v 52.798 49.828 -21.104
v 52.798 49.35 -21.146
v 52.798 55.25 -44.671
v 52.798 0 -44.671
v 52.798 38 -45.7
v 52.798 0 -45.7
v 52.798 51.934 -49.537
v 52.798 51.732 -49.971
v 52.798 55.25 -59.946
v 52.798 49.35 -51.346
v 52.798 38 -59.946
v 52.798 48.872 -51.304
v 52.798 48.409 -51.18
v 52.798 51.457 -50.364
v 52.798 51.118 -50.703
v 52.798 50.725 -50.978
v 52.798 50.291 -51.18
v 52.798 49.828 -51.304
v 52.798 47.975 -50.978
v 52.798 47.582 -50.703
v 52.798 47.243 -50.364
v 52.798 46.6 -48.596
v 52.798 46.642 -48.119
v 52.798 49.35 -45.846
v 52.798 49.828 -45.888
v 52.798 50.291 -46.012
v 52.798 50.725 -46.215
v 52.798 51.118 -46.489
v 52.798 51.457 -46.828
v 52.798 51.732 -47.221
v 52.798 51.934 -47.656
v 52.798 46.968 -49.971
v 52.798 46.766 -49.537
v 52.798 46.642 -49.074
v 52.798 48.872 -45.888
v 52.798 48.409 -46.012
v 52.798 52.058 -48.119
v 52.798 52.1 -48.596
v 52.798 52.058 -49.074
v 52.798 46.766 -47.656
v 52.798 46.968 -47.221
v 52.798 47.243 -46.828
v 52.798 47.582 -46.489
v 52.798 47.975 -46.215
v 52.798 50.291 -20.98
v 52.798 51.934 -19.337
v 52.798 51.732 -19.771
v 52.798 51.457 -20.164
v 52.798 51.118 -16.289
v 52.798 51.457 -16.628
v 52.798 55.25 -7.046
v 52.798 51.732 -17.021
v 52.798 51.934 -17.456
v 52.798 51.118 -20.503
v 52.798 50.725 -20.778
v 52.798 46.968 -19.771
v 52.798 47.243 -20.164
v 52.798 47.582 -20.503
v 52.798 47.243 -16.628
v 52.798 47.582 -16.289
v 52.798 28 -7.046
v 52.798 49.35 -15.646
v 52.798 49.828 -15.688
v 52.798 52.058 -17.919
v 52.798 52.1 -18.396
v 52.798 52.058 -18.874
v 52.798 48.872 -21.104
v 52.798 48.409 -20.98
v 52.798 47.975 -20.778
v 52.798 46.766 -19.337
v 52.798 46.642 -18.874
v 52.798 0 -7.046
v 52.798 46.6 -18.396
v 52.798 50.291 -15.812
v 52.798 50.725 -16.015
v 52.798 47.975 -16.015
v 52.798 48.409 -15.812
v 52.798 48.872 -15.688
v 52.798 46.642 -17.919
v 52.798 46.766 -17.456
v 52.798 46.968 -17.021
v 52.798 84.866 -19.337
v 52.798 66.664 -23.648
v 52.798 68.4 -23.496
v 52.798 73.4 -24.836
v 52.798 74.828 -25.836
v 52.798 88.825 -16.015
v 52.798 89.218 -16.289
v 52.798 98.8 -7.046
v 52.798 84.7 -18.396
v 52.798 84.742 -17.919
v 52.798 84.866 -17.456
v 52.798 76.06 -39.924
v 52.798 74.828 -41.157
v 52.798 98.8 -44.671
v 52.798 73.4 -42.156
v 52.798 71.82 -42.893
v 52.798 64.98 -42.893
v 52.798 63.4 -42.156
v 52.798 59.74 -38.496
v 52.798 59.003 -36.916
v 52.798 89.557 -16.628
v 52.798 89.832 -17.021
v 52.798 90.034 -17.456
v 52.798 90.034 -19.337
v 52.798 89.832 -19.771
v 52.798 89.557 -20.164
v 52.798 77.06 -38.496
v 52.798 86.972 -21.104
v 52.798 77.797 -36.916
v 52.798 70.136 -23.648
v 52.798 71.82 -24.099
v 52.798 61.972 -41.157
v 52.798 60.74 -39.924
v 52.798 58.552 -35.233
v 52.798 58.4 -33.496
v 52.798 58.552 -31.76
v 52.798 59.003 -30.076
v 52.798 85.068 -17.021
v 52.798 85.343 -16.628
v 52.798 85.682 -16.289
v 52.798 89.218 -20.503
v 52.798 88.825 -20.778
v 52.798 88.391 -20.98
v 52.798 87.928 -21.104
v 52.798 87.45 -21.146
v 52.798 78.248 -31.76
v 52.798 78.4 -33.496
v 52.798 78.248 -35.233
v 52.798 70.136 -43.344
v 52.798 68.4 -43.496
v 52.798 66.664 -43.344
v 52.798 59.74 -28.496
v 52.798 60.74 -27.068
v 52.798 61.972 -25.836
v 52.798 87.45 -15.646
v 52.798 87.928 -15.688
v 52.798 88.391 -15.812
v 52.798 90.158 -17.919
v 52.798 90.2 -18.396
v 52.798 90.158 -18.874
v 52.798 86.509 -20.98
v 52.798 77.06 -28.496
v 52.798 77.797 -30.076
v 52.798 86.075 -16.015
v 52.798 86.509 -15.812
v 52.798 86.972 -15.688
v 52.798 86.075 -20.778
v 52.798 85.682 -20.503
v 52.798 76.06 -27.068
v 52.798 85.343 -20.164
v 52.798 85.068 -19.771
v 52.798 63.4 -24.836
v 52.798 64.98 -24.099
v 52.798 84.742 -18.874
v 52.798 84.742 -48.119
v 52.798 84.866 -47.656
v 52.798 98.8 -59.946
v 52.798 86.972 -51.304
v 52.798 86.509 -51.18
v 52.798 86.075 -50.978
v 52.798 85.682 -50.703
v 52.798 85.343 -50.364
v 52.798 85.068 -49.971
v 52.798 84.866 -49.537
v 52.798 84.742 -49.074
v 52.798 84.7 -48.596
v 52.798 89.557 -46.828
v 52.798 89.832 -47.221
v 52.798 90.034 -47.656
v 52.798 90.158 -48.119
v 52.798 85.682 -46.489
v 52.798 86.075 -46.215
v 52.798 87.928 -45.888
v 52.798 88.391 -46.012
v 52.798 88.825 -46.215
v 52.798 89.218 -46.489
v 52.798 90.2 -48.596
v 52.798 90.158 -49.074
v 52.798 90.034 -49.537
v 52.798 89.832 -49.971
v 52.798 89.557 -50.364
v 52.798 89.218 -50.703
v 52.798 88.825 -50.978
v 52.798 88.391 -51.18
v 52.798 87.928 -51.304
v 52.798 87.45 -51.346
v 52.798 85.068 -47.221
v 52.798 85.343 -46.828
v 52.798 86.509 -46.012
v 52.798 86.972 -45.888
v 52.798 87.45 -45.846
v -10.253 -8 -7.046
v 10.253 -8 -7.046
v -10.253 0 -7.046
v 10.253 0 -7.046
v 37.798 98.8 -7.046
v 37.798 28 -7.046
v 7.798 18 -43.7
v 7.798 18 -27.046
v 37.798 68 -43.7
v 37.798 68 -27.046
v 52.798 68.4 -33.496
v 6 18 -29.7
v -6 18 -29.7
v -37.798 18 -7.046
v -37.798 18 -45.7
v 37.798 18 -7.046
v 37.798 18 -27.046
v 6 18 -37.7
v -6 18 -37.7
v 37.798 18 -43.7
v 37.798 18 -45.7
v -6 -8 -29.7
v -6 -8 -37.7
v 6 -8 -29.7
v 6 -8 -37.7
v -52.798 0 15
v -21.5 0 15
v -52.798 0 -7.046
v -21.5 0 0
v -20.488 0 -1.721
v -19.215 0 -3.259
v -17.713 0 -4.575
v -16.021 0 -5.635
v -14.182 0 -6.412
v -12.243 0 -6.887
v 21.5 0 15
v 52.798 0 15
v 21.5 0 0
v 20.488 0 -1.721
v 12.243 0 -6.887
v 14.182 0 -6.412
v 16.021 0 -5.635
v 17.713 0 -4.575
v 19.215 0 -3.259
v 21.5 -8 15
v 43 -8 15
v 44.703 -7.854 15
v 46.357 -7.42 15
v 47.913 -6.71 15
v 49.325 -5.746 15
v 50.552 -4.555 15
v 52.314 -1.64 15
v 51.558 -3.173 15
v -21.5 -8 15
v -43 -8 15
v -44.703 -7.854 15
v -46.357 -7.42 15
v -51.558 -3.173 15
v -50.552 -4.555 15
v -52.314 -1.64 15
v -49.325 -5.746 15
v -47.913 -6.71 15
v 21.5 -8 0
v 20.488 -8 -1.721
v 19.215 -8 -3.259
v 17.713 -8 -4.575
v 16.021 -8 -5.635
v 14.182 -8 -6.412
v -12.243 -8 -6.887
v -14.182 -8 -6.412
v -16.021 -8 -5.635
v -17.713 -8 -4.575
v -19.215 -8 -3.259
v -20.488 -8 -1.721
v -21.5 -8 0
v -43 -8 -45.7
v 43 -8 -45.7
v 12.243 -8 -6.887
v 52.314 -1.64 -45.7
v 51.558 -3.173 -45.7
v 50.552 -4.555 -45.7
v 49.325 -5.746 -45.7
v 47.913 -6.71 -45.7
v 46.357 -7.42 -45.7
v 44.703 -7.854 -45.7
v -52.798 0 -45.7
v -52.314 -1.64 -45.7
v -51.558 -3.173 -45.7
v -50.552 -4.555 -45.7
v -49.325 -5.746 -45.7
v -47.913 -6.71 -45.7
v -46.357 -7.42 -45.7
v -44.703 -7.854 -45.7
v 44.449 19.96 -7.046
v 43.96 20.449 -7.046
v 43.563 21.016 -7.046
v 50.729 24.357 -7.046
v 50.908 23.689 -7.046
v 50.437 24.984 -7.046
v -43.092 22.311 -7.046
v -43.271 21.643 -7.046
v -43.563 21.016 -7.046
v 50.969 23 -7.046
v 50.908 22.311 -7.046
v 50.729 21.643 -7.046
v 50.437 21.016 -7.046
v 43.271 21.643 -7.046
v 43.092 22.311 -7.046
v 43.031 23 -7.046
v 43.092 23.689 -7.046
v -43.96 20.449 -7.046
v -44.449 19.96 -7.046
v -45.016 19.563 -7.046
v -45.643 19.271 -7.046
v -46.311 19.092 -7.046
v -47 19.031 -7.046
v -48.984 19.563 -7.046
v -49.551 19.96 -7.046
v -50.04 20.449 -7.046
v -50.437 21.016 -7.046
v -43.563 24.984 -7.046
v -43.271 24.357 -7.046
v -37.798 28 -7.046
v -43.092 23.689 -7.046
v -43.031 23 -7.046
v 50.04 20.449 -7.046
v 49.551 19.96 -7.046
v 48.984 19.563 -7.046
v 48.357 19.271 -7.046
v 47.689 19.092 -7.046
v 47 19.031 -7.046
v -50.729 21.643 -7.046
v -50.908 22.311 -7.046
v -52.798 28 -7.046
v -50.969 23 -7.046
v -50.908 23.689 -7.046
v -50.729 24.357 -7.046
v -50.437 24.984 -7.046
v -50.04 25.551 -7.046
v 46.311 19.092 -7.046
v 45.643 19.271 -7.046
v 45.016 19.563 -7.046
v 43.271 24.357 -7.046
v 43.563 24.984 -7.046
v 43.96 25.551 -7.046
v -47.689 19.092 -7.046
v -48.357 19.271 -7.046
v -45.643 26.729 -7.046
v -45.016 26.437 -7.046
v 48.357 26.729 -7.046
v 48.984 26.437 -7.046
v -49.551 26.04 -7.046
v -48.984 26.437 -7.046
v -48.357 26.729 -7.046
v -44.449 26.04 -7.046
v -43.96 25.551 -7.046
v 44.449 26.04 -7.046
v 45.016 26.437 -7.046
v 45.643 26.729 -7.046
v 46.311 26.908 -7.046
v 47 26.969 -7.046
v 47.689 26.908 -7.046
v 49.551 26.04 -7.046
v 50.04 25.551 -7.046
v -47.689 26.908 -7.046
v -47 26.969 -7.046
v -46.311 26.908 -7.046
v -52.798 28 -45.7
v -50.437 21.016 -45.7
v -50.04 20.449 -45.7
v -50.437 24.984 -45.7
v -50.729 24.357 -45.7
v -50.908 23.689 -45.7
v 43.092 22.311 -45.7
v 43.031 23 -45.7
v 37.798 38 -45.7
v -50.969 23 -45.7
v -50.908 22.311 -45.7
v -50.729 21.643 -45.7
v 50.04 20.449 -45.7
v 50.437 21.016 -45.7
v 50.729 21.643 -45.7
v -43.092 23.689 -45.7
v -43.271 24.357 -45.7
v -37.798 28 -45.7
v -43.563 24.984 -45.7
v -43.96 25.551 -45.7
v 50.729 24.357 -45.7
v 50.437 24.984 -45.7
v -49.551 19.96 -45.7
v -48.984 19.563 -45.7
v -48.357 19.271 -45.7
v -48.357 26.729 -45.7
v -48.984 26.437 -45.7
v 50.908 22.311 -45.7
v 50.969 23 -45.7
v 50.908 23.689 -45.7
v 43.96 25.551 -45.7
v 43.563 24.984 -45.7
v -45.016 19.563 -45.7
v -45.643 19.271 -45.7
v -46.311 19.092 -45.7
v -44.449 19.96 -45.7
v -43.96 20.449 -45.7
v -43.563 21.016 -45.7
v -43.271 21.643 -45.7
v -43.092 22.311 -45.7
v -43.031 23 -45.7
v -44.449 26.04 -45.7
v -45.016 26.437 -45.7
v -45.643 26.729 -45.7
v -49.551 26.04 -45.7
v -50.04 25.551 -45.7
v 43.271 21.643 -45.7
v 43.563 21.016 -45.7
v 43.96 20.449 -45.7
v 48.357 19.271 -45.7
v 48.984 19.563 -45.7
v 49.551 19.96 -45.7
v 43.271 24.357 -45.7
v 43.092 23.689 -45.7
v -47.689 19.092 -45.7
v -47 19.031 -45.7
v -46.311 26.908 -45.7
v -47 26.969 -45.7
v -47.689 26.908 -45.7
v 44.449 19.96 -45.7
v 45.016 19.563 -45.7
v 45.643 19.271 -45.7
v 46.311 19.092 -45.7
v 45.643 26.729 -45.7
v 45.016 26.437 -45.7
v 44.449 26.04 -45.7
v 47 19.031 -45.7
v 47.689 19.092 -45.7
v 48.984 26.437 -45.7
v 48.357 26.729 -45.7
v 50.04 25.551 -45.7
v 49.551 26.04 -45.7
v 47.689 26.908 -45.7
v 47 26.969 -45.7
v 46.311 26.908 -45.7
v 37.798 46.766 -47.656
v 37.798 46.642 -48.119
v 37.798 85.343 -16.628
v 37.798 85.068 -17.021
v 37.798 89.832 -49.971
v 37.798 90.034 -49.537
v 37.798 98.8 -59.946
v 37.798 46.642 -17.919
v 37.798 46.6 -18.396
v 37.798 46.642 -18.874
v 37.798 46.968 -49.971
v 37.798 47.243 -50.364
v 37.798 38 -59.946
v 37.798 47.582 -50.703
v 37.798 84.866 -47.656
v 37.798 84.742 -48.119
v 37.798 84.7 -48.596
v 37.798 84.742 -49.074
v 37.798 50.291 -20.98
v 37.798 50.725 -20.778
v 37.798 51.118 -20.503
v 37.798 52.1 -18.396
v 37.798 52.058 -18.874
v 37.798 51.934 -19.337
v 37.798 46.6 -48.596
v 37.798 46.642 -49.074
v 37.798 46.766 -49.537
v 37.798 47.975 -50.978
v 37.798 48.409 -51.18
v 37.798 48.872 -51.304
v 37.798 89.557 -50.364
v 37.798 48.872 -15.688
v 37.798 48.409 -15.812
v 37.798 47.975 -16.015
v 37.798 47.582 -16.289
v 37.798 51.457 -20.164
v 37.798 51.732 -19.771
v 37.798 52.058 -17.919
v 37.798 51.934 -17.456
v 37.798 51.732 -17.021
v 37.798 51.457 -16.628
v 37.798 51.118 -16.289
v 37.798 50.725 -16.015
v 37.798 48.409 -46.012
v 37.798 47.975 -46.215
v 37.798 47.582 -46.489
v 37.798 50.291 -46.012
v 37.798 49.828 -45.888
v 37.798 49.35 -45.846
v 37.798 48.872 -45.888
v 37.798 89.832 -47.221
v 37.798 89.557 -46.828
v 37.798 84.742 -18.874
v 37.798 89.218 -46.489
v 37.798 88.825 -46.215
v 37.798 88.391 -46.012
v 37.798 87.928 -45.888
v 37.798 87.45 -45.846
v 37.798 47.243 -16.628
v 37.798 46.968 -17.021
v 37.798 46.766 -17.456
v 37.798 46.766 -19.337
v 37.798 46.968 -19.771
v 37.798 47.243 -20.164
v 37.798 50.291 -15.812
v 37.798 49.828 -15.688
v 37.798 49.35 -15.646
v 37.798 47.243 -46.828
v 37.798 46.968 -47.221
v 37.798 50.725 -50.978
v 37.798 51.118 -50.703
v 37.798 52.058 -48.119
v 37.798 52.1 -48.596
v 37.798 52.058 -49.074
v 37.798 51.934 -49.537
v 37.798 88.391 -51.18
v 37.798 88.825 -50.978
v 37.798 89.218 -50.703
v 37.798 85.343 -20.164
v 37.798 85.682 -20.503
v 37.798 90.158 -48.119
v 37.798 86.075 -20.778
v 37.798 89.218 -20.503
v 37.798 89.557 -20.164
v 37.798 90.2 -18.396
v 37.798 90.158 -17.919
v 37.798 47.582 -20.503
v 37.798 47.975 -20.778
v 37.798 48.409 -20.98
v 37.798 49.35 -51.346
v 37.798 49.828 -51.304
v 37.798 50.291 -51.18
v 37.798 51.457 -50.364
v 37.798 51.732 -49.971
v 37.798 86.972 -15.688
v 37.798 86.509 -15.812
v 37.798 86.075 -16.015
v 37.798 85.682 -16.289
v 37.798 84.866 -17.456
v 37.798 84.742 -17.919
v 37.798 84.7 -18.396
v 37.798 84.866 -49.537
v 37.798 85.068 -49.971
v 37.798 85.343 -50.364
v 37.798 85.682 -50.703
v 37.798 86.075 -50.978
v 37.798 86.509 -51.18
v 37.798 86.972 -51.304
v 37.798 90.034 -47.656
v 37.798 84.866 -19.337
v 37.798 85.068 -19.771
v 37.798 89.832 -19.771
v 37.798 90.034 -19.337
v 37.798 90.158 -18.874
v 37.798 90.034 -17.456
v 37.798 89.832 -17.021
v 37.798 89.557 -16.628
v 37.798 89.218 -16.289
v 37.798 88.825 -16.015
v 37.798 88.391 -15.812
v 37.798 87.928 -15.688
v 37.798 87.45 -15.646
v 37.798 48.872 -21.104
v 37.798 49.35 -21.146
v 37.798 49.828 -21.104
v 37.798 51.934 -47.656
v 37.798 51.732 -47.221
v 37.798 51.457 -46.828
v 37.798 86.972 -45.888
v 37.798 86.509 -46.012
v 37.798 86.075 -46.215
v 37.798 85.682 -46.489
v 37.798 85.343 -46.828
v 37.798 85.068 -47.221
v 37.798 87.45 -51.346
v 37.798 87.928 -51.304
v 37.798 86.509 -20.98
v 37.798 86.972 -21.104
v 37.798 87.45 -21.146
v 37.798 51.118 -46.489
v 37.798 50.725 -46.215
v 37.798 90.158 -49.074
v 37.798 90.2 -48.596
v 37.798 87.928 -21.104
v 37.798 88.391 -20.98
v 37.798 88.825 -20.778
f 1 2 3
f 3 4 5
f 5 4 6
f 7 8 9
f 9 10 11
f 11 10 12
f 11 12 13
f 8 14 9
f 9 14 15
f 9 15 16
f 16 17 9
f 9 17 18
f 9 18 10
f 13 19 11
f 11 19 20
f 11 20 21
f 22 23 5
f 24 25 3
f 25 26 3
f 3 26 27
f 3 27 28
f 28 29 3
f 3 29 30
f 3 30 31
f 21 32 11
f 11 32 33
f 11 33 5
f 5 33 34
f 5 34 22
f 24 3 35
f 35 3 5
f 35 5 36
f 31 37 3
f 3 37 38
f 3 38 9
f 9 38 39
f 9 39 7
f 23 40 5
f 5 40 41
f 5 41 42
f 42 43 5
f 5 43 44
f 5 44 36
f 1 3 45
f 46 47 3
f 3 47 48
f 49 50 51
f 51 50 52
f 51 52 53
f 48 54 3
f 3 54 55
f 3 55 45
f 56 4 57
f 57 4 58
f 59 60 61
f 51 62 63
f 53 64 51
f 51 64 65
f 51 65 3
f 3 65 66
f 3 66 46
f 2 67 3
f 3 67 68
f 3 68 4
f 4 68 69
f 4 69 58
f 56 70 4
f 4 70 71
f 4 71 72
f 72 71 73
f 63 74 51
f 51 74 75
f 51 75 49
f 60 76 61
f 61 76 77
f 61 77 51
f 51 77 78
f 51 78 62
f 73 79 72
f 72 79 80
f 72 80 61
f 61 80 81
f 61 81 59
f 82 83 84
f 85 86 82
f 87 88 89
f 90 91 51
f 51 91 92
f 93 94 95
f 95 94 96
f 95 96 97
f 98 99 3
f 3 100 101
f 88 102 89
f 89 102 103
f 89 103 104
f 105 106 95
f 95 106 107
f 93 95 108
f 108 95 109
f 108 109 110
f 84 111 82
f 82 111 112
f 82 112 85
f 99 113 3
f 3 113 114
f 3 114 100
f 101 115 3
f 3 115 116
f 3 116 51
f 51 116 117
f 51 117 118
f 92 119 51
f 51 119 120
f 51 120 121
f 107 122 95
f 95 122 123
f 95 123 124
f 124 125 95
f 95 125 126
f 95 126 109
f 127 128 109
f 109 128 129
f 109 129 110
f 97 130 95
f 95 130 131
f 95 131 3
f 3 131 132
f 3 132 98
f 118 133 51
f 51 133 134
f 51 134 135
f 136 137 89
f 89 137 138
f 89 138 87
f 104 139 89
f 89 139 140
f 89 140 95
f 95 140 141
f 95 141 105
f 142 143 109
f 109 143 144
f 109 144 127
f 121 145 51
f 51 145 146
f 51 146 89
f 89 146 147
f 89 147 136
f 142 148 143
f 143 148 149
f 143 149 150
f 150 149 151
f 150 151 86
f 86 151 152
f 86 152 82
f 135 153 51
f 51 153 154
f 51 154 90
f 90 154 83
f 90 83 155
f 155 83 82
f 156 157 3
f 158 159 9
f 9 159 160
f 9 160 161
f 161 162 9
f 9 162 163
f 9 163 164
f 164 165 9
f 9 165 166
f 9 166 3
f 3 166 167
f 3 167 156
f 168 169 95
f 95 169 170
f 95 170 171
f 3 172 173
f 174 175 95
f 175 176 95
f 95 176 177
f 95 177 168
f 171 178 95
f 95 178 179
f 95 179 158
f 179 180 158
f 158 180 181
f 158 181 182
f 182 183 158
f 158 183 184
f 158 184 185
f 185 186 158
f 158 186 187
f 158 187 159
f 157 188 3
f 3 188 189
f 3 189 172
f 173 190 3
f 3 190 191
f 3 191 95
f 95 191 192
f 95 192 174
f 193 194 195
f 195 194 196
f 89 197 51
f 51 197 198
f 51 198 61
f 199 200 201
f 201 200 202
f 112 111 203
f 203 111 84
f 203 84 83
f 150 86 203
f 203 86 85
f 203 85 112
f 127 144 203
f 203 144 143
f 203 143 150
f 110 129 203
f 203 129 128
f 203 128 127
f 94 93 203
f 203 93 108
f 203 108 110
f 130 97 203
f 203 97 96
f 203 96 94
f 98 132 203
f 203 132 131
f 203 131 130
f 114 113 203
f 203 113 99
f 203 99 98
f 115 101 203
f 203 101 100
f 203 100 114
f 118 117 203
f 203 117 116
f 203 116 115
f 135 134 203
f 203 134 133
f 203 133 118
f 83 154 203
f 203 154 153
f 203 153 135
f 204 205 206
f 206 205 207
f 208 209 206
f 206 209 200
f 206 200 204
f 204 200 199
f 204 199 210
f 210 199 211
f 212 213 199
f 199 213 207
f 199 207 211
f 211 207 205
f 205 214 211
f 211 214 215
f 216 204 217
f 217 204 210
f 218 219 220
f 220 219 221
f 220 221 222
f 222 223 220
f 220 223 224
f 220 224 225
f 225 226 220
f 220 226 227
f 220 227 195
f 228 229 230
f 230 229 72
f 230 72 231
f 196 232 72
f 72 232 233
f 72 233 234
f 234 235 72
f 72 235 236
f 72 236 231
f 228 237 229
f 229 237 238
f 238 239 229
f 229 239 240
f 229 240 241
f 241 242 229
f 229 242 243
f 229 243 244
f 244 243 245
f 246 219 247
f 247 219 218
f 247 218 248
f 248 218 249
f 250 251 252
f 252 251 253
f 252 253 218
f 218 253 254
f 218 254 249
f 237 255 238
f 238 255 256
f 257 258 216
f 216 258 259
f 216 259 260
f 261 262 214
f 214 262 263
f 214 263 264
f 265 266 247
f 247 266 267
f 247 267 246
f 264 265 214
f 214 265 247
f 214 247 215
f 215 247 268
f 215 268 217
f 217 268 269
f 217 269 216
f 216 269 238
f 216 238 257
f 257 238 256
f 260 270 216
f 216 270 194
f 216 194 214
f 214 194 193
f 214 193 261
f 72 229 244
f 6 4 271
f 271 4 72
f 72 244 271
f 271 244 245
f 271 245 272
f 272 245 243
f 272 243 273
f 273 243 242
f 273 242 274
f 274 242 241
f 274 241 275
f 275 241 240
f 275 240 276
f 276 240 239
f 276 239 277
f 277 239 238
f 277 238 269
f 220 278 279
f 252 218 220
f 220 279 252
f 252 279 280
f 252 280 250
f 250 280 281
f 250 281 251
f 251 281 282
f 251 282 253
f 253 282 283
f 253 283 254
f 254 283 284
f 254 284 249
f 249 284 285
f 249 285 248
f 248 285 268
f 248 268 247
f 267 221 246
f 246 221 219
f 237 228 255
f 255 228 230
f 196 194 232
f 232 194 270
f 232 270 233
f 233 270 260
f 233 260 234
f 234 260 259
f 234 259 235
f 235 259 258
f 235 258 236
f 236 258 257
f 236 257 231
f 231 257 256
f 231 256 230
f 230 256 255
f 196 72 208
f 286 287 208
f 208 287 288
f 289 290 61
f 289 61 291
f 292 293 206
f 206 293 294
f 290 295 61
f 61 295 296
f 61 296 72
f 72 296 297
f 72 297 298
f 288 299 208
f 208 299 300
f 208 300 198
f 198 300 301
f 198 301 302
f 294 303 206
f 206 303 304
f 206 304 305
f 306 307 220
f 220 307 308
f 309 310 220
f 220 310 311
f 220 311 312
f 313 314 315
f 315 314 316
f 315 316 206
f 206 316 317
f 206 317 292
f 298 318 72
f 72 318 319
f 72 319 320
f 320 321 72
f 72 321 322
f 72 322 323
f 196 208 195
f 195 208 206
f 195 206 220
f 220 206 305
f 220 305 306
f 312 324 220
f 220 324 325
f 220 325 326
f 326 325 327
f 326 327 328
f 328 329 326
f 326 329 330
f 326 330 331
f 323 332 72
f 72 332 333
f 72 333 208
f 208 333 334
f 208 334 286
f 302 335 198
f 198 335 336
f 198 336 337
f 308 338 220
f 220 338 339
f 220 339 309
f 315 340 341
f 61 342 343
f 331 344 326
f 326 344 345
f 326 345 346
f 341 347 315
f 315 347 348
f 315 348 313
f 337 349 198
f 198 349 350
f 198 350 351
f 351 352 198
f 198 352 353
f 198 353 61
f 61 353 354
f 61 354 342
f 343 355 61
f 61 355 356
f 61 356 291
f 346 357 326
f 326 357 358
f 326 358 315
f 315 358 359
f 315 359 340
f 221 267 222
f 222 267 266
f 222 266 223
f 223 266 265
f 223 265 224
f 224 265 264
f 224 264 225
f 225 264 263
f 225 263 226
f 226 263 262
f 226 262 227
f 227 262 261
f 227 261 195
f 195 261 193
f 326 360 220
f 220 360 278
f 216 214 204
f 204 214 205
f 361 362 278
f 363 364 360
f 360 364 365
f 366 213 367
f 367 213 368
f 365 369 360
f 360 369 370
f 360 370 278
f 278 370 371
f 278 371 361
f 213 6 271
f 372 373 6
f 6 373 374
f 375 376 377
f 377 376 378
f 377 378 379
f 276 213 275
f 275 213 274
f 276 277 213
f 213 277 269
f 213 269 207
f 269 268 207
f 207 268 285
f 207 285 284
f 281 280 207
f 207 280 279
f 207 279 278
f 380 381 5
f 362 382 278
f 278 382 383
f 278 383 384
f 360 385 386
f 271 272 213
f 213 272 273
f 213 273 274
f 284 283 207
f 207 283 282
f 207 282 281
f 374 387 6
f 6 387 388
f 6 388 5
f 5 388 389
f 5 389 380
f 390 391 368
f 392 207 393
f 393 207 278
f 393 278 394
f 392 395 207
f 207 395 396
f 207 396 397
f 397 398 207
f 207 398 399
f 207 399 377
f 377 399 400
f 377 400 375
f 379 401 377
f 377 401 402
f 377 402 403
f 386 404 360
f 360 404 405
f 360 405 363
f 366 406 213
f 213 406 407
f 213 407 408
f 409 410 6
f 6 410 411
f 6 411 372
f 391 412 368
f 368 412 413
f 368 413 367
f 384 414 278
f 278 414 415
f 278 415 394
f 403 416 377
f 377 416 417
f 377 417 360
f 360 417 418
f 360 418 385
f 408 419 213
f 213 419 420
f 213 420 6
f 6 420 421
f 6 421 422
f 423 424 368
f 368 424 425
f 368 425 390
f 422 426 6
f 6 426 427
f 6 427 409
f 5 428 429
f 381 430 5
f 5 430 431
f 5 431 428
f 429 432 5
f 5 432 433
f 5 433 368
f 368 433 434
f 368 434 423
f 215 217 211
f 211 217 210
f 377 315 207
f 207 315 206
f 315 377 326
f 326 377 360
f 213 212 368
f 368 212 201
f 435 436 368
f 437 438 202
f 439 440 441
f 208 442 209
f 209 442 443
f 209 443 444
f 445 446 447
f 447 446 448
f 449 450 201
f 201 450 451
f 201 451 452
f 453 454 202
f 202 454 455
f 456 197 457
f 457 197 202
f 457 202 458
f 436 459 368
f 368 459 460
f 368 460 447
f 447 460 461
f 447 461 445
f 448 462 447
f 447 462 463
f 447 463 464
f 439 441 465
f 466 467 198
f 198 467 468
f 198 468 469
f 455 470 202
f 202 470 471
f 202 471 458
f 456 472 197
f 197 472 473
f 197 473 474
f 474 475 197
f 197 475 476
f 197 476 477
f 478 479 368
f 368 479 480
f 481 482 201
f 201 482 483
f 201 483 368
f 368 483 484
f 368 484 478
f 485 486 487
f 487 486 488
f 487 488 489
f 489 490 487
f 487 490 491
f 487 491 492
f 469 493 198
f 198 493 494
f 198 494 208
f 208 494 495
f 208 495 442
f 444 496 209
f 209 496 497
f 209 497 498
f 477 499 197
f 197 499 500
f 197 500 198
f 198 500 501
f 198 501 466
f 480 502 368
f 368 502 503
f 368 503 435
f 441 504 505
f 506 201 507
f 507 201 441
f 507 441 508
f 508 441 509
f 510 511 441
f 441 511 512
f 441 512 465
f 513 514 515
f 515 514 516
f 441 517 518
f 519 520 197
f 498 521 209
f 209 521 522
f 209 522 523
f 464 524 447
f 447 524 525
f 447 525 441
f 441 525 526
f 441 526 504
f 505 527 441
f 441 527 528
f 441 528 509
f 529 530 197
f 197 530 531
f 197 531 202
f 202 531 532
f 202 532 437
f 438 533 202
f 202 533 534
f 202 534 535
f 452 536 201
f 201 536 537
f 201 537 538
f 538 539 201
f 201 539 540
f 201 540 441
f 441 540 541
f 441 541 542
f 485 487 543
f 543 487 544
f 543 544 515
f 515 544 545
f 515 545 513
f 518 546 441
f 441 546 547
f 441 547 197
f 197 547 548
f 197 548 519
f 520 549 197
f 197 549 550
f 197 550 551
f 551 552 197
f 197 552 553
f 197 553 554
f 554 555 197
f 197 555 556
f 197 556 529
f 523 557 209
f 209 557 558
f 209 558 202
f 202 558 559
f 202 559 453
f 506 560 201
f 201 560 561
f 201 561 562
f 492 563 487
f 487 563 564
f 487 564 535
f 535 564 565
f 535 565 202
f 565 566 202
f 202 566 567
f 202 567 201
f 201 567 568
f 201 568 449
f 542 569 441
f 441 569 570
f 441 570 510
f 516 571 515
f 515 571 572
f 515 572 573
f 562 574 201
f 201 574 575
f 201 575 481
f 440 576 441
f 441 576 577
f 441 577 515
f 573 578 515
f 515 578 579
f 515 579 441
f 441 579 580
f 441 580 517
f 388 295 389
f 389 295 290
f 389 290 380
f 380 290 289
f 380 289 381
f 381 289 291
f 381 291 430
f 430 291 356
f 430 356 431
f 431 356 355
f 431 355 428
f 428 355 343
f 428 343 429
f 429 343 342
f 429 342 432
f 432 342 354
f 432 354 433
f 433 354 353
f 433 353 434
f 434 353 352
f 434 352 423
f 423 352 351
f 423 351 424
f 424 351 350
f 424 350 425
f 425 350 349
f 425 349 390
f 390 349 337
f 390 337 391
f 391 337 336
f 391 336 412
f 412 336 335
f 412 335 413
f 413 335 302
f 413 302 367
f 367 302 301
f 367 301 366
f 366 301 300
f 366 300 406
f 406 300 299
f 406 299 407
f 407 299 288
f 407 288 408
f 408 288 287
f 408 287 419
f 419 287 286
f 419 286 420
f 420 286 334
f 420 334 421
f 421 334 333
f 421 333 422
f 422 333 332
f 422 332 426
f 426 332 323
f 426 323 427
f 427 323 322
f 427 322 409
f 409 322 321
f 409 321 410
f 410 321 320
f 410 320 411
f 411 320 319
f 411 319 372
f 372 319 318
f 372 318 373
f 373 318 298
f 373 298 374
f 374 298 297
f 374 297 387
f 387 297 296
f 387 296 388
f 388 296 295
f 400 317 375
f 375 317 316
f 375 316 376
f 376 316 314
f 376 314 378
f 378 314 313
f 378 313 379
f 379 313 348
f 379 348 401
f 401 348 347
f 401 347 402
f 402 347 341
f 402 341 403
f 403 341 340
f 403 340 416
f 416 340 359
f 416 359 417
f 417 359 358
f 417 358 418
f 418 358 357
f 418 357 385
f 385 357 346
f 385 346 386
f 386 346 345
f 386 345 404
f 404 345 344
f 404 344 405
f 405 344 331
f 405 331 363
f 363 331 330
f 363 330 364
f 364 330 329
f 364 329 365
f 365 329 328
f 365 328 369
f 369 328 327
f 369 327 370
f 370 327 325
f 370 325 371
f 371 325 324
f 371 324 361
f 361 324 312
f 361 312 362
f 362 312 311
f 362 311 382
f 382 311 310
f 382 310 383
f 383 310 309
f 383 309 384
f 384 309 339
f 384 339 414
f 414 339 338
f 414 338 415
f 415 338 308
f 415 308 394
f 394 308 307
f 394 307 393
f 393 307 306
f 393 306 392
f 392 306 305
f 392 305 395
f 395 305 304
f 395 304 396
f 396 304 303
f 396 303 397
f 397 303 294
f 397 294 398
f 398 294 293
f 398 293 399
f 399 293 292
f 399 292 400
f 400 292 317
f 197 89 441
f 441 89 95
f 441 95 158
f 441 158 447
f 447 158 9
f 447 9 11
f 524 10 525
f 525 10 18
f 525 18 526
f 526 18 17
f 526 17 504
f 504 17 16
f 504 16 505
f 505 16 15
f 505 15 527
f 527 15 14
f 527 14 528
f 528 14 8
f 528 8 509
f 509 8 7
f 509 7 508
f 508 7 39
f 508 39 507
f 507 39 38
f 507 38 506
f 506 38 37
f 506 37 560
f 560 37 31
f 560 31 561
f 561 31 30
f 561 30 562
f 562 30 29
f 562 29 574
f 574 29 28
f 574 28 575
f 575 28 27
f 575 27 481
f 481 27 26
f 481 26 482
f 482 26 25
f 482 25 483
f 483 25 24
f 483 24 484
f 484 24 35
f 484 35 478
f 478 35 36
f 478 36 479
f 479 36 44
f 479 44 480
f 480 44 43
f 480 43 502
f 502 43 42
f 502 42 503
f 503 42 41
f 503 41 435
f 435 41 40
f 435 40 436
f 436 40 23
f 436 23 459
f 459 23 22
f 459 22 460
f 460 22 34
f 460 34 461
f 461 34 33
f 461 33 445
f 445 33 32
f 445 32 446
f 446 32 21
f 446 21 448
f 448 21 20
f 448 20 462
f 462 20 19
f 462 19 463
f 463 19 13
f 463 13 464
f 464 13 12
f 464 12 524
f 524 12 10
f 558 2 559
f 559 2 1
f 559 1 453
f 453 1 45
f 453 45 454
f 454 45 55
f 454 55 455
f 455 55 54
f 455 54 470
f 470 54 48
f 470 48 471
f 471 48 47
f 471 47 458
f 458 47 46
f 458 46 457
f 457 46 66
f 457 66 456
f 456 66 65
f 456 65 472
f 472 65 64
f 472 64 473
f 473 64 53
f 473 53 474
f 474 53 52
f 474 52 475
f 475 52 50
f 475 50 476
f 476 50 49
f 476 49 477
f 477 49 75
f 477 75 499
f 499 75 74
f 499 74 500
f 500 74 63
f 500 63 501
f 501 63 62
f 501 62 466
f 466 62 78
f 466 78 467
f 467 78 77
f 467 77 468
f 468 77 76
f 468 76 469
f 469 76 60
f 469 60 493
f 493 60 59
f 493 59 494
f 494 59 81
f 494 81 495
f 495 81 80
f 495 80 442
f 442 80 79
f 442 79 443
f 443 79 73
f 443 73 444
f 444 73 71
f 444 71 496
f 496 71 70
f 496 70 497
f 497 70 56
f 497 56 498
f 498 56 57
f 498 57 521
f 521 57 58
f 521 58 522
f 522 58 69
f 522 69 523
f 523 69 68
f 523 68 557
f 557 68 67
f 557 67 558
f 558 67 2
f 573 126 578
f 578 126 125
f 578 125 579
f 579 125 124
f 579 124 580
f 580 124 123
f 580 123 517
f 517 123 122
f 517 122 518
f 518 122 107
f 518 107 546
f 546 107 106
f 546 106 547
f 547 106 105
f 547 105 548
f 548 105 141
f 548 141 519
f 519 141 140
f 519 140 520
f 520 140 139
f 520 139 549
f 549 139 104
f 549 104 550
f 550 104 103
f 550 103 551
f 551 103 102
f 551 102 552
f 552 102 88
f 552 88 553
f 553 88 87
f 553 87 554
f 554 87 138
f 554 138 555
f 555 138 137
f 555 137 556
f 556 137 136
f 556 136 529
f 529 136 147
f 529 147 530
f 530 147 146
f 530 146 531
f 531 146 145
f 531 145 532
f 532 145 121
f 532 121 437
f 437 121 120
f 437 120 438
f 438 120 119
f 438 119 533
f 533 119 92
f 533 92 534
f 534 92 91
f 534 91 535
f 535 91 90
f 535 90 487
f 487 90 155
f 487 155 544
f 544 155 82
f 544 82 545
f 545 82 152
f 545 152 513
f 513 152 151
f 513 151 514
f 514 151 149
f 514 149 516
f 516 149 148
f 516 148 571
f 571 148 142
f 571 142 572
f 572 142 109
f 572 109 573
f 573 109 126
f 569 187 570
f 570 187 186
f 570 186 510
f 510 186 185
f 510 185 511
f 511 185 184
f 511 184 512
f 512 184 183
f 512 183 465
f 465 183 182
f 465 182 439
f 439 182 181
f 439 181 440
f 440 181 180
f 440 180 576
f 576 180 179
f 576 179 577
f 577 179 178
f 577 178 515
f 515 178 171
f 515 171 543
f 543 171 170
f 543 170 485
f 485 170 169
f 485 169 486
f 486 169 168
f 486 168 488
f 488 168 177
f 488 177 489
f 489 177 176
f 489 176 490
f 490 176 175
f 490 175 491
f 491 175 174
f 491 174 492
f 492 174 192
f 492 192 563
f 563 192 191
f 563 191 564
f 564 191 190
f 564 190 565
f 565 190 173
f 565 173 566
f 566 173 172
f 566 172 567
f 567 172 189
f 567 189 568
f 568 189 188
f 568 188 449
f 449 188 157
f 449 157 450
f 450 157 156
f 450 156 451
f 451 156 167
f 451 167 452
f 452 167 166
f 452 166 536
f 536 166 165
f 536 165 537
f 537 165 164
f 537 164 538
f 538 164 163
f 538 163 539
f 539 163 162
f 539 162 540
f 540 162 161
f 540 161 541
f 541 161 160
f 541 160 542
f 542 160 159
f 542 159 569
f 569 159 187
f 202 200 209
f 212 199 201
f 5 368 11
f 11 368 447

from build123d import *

# Parameters (mm, degrees)
SKETCH2_W                      = 90
SKETCH2_H                      = 30
BOSS_EXTRUDE1_DEPTH            = 184.15
SHELL1_T                       = 8
FILLET1_R                      = 10
CUT_EXTRUDE1_DEPTH             = 15
BOSS_EXTRUDE3_DEPTH            = 12.7
SKETCH19_W                     = 50.7
SKETCH19_H                     = 190.15
CUT_EXTRUDE3_DEPTH             = 160
CUT_EXTRUDE4_DEPTH             = 62.424750712
CUT_EXTRUDE5_DEPTH             = 83.99843372
CUT_EXTRUDE5_DEPTH_BACK        = 83.99843372
SKETCH21_W                     = 50.7
SKETCH21_H                     = 2
SKETCH22_W                     = 105.595917942
SKETCH22_H                     = 28.653888285
BOSS_EXTRUDE4_DEPTH            = 18
SKETCH25_W                     = 12
SKETCH25_H                     = 6
CUT_EXTRUDE7_DEPTH             = 69.833963067
BOSS_EXTRUDE6_DEPTH            = 10
SKETCH27_W                     = 12
SKETCH27_H                     = 8
BOSS_EXTRUDE7_DEPTH            = 26
SKETCH31_W                     = 15
SKETCH31_H                     = 38.653888285
BOSS_EXTRUDE8_DEPTH            = 10
F_5_16_0_3125_DIAMETER_HOLE2_D = 7.9375
SKETCH35_W                     = 52.9
SKETCH35_H                     = 70.8
BOSS_EXTRUDE9_DEPTH            = 15
F_5_5_5_5_DIAMETER_HOLE1_D     = 5.5
BOSS_EXTRUDE10_DEPTH           = 38.653888285
CUT_EXTRUDE8_DEPTH             = 20
CUT_EXTRUDE10_DEPTH            = 2
SKETCH43_W                     = 14.246111715
SKETCH43_H                     = 10
CUT_EXTRUDE11_DEPTH            = 157.542244125


with BuildPart() as part:
    # Sketch2 → Boss-Extrude1 (new body)
    with BuildSketch(Plane(origin=(0, 0, 0), x_dir=(1, 0, 0), z_dir=(0, 1, 0))):
        Rectangle(SKETCH2_W, SKETCH2_H)
    extrude(amount=BOSS_EXTRUDE1_DEPTH)

    # Shell1
    shell1_openings = [part.faces().sort_by_distance(p)[0] for p in [
        (0, 92.075, 15),
    ]]
    offset(amount=SHELL1_T, openings=shell1_openings, kind=Kind.INTERSECTION)

    # Fillet1
    # the kernel refuses this fillet: 10 mm, written as the material it adds along each edge
    with BuildSketch(Plane(origin=(-45, 0, -15), x_dir=(0, 1, 0), z_dir=(0, 0, 1)), Plane(origin=(45, 0, 15), x_dir=(0, 1, 0), z_dir=(0, 0, -1))) as fillet1_piece_1:
        with BuildLine():
            CenterArc((FILLET1_R, -FILLET1_R), FILLET1_R, 90, 90)
            Line((0, -FILLET1_R), (0, 0))
            Line((0, 0), (FILLET1_R, 0))
        make_face()
    extrude(amount=30)
    with BuildSketch(Plane(origin=(-45, 184.15, -15), x_dir=(0, -1, 0), z_dir=(0, 0, 1)), Plane(origin=(45, 184.15, 15), x_dir=(0, -1, 0), z_dir=(0, 0, -1))) as fillet1_piece_2:
        with BuildLine():
            CenterArc((FILLET1_R, FILLET1_R), FILLET1_R, 180, 90)
            Line((0, FILLET1_R), (0, 0))
            Line((0, 0), (FILLET1_R, 0))
        make_face()
    extrude(amount=30)
    # the kernel refuses this fillet: 10 mm, written as the material it takes off along each edge
    with BuildSketch(Plane(origin=(53, 192.15, 40), x_dir=(0, -1, 0), z_dir=(0, 0, -1)), Plane(origin=(-53, 192.15, -48), x_dir=(0, -1, 0), z_dir=(0, 0, 1)), Plane(origin=(-53, -8, -48), x_dir=(1, 0, 0), z_dir=(0, 0, 1))) as fillet1_2_piece_1:
        with BuildLine():
            CenterArc((FILLET1_R, FILLET1_R), FILLET1_R, 180, 90)
            Line((0, FILLET1_R), (0, 0))
            Line((0, 0), (FILLET1_R, 0))
        make_face()
    extrude(amount=88, mode=Mode.SUBTRACT)
    with BuildSketch(Plane(origin=(53, -8, 40), x_dir=(0, 1, 0), z_dir=(0, 0, -1))) as fillet1_2_piece_2:
        with BuildLine():
            CenterArc((FILLET1_R, -FILLET1_R), FILLET1_R, 90, 90)
            Line((0, -FILLET1_R), (0, 0))
            Line((0, 0), (FILLET1_R, 0))
        make_face()
    extrude(amount=88, mode=Mode.SUBTRACT)

    # Sketch3 → Cut-Extrude1 (cut)
    with BuildSketch(Plane.XZ.offset(8)):
        with BuildLine():
            Line((-21.5, 15), (21.5, 15))
            Line((21.5, 15), (21.5, 0))
            ThreePointArc((21.5, 0), (16.888679541, -5.139118926), (10.252551286, -7.046111715))
            Line((10.252551286, -7.046111715), (-10.252551286, -7.046111715))
            ThreePointArc((-10.252551286, -7.046111715), (-16.888679541, -5.139118926), (-21.5, 0))
            Line((-21.5, 0), (-21.5, 15))
        make_face()
    extrude(amount=-CUT_EXTRUDE1_DEPTH, mode=Mode.SUBTRACT)

    # Sketch16 → Boss-Extrude3 (add)
    with BuildSketch(Plane(origin=(0, 0, -23), x_dir=(-1, 0, 0), z_dir=(0, 0, -1))):
        with BuildLine():
            Line((-53, 182.15), (-53, 2))
            ThreePointArc((-53, 2), (-50.071067812, -5.071067812), (-43, -8))
            Line((-43, -8), (43, -8))
            ThreePointArc((43, -8), (50.071067812, -5.071067812), (53, 2))
            Line((53, 2), (53, 182.15))
            ThreePointArc((53, 182.15), (50.071067812, 189.221067812), (43, 192.15))
            Line((43, 192.15), (-43, 192.15))
            ThreePointArc((-43, 192.15), (-50.071067812, 189.221067812), (-53, 182.15))
        make_face()
    extrude(amount=BOSS_EXTRUDE3_DEPTH)

    # Sketch19 → Cut-Extrude3 (cut)
    with BuildSketch(Plane(origin=(53, 0, 0), x_dir=(0, 0, -1), z_dir=(1, 0, 0))):
        with Locations((10.35, 97.075)):
            Rectangle(SKETCH19_W, SKETCH19_H)
    extrude(amount=-CUT_EXTRUDE3_DEPTH, mode=Mode.SUBTRACT)

    # Sketch20 → Cut-Extrude4 (cut, through all)
    with BuildSketch(Plane.XY.offset(-15)):
        with BuildLine():
            Line((41, 2), (-41, 2))
            ThreePointArc((-41, 2), (-38.16227766, 0.513167019), (-35, 0))
            Line((-35, 0), (35, 0))
            ThreePointArc((35, 0), (38.16227766, 0.513167019), (41, 2))
        make_face()
    extrude(amount=-CUT_EXTRUDE4_DEPTH, mode=Mode.SUBTRACT)

    # Sketch21 → Cut-Extrude5 (cut, two sides: drawn at the far end of the back side and taken through both)
    with BuildSketch(Plane.ZY.offset(-21.5).offset(-CUT_EXTRUDE5_DEPTH_BACK)):
        with Locations((-10.35, 1)):
            Rectangle(SKETCH21_W, SKETCH21_H)
    extrude(amount=CUT_EXTRUDE5_DEPTH + CUT_EXTRUDE5_DEPTH_BACK, mode=Mode.SUBTRACT)

    # Sketch22 → Boss-Extrude4 (add)
    with BuildSketch(Plane(origin=(0, 0, 0), x_dir=(1, 0, 0), z_dir=(0, 1, 0))):
        with Locations((0, 21.373055858)):
            Rectangle(SKETCH22_W, SKETCH22_H)
    extrude(amount=BOSS_EXTRUDE4_DEPTH)

    # Sketch25 → Cut-Extrude7 (cut, through all)
    with BuildSketch(Plane(origin=(0, 18, 0), x_dir=(1, 0, 0), z_dir=(0, 1, 0))):
        with Locations((0, 32.7)):
            Rectangle(SKETCH25_W, SKETCH25_H)
    extrude(amount=-CUT_EXTRUDE7_DEPTH, mode=Mode.SUBTRACT)

    # Sketch26 → Boss-Extrude6 (add)
    with BuildSketch(Plane(origin=(0, 0, -35.7), x_dir=(-1, 0, 0), z_dir=(0, 0, -1))):
        with BuildLine():
            Line((6, 18), (6, -8))
            Line((6, -8), (43, -8))
            ThreePointArc((43, -8), (49.32455532, -5.745966692), (52.797958971, 0))
            Line((52.797958971, 0), (52.797958971, 18))
            Line((52.797958971, 18), (6, 18))
        make_face()
        with BuildLine():
            Line((-6, -8), (-6, 18))
            Line((-6, 18), (-52.797958971, 18))
            Line((-52.797958971, 18), (-52.797958971, 0))
            ThreePointArc((-52.797958971, 0), (-49.32455532, -5.745966692), (-43, -8))
            Line((-43, -8), (-6, -8))
        make_face()
    extrude(amount=BOSS_EXTRUDE6_DEPTH)

    # Sketch27 → Boss-Extrude7 (add)
    with BuildSketch(Plane.XZ.offset(8)):
        with Locations((0, -41.7)):
            Rectangle(SKETCH27_W, SKETCH27_H)
    extrude(amount=-BOSS_EXTRUDE7_DEPTH)

    # Sketch31 → Boss-Extrude8 (add)
    with BuildSketch(Plane(origin=(0, 18, 0), x_dir=(1, 0, 0), z_dir=(0, 1, 0))):
        with Locations((-45.297958971, 26.373055858)):
            Rectangle(SKETCH31_W, SKETCH31_H)
        with Locations((45.297958971, 26.373055858)):
            Rectangle(SKETCH31_W, SKETCH31_H)
    extrude(amount=BOSS_EXTRUDE8_DEPTH)

    # 5/16 (0.3125) Diameter Hole2 (through all)
    with Locations(Plane.XY.offset(-7.046111715)):
        with Locations((-47, 23), (47, 23)):
            Hole(F_5_16_0_3125_DIAMETER_HOLE2_D / 2)

    # Sketch35 → Boss-Extrude9 (add)
    with BuildSketch(Plane(origin=(52.797958971, 0, 0), x_dir=(0, 0, -1), z_dir=(1, 0, 0))):
        with Locations((33.496111715, 63.4)):
            Rectangle(SKETCH35_W, SKETCH35_H)
    extrude(amount=-BOSS_EXTRUDE9_DEPTH)

    # Ø5.5 (5.5) Diameter Hole1 (through all)
    with Locations(Plane(origin=(52.797958971, 0, 0), x_dir=(0, 0, -1), z_dir=(1, 0, 0))):
        with Locations((48.596111715, 87.45), (18.396111715, 87.45), (18.396111715, 49.35), (48.596111715, 49.35)):
            Hole(F_5_5_5_5_DIAMETER_HOLE1_D / 2)

    # Sketch39 → Boss-Extrude10 (add)
    with BuildSketch(Plane.XY.offset(-7.046111715)):
        Polygon((7.797958971, 18), (37.797958971, 18), (37.797958971, 68), align=None)
    extrude(amount=-BOSS_EXTRUDE10_DEPTH)

    # Sketch40 → Cut-Extrude8 (cut)
    with BuildSketch(Plane.XY.offset(-7.046111715)):
        Polygon((37.797958971, 68), (7.797958971, 18), (37.797958971, 18), align=None)
    extrude(amount=-CUT_EXTRUDE8_DEPTH, mode=Mode.SUBTRACT)

    # Sketch42 → Cut-Extrude10 (cut)
    with BuildSketch(Plane(origin=(0, 0, -45.7), x_dir=(-1, 0, 0), z_dir=(0, 0, -1))):
        Polygon((-37.797958971, 68), (-7.797958971, 18), (-37.797958971, 18), align=None)
    extrude(amount=-CUT_EXTRUDE10_DEPTH, mode=Mode.SUBTRACT)

    # Sketch43 → Cut-Extrude11 (cut, through all)
    with BuildSketch(Plane(origin=(52.797958971, 0, 0), x_dir=(0, 0, -1), z_dir=(1, 0, 0))):
        with Locations((52.823055858, 33)):
            Rectangle(SKETCH43_W, SKETCH43_H)
    extrude(amount=-CUT_EXTRUDE11_DEPTH, mode=Mode.SUBTRACT)


solid = part.part
